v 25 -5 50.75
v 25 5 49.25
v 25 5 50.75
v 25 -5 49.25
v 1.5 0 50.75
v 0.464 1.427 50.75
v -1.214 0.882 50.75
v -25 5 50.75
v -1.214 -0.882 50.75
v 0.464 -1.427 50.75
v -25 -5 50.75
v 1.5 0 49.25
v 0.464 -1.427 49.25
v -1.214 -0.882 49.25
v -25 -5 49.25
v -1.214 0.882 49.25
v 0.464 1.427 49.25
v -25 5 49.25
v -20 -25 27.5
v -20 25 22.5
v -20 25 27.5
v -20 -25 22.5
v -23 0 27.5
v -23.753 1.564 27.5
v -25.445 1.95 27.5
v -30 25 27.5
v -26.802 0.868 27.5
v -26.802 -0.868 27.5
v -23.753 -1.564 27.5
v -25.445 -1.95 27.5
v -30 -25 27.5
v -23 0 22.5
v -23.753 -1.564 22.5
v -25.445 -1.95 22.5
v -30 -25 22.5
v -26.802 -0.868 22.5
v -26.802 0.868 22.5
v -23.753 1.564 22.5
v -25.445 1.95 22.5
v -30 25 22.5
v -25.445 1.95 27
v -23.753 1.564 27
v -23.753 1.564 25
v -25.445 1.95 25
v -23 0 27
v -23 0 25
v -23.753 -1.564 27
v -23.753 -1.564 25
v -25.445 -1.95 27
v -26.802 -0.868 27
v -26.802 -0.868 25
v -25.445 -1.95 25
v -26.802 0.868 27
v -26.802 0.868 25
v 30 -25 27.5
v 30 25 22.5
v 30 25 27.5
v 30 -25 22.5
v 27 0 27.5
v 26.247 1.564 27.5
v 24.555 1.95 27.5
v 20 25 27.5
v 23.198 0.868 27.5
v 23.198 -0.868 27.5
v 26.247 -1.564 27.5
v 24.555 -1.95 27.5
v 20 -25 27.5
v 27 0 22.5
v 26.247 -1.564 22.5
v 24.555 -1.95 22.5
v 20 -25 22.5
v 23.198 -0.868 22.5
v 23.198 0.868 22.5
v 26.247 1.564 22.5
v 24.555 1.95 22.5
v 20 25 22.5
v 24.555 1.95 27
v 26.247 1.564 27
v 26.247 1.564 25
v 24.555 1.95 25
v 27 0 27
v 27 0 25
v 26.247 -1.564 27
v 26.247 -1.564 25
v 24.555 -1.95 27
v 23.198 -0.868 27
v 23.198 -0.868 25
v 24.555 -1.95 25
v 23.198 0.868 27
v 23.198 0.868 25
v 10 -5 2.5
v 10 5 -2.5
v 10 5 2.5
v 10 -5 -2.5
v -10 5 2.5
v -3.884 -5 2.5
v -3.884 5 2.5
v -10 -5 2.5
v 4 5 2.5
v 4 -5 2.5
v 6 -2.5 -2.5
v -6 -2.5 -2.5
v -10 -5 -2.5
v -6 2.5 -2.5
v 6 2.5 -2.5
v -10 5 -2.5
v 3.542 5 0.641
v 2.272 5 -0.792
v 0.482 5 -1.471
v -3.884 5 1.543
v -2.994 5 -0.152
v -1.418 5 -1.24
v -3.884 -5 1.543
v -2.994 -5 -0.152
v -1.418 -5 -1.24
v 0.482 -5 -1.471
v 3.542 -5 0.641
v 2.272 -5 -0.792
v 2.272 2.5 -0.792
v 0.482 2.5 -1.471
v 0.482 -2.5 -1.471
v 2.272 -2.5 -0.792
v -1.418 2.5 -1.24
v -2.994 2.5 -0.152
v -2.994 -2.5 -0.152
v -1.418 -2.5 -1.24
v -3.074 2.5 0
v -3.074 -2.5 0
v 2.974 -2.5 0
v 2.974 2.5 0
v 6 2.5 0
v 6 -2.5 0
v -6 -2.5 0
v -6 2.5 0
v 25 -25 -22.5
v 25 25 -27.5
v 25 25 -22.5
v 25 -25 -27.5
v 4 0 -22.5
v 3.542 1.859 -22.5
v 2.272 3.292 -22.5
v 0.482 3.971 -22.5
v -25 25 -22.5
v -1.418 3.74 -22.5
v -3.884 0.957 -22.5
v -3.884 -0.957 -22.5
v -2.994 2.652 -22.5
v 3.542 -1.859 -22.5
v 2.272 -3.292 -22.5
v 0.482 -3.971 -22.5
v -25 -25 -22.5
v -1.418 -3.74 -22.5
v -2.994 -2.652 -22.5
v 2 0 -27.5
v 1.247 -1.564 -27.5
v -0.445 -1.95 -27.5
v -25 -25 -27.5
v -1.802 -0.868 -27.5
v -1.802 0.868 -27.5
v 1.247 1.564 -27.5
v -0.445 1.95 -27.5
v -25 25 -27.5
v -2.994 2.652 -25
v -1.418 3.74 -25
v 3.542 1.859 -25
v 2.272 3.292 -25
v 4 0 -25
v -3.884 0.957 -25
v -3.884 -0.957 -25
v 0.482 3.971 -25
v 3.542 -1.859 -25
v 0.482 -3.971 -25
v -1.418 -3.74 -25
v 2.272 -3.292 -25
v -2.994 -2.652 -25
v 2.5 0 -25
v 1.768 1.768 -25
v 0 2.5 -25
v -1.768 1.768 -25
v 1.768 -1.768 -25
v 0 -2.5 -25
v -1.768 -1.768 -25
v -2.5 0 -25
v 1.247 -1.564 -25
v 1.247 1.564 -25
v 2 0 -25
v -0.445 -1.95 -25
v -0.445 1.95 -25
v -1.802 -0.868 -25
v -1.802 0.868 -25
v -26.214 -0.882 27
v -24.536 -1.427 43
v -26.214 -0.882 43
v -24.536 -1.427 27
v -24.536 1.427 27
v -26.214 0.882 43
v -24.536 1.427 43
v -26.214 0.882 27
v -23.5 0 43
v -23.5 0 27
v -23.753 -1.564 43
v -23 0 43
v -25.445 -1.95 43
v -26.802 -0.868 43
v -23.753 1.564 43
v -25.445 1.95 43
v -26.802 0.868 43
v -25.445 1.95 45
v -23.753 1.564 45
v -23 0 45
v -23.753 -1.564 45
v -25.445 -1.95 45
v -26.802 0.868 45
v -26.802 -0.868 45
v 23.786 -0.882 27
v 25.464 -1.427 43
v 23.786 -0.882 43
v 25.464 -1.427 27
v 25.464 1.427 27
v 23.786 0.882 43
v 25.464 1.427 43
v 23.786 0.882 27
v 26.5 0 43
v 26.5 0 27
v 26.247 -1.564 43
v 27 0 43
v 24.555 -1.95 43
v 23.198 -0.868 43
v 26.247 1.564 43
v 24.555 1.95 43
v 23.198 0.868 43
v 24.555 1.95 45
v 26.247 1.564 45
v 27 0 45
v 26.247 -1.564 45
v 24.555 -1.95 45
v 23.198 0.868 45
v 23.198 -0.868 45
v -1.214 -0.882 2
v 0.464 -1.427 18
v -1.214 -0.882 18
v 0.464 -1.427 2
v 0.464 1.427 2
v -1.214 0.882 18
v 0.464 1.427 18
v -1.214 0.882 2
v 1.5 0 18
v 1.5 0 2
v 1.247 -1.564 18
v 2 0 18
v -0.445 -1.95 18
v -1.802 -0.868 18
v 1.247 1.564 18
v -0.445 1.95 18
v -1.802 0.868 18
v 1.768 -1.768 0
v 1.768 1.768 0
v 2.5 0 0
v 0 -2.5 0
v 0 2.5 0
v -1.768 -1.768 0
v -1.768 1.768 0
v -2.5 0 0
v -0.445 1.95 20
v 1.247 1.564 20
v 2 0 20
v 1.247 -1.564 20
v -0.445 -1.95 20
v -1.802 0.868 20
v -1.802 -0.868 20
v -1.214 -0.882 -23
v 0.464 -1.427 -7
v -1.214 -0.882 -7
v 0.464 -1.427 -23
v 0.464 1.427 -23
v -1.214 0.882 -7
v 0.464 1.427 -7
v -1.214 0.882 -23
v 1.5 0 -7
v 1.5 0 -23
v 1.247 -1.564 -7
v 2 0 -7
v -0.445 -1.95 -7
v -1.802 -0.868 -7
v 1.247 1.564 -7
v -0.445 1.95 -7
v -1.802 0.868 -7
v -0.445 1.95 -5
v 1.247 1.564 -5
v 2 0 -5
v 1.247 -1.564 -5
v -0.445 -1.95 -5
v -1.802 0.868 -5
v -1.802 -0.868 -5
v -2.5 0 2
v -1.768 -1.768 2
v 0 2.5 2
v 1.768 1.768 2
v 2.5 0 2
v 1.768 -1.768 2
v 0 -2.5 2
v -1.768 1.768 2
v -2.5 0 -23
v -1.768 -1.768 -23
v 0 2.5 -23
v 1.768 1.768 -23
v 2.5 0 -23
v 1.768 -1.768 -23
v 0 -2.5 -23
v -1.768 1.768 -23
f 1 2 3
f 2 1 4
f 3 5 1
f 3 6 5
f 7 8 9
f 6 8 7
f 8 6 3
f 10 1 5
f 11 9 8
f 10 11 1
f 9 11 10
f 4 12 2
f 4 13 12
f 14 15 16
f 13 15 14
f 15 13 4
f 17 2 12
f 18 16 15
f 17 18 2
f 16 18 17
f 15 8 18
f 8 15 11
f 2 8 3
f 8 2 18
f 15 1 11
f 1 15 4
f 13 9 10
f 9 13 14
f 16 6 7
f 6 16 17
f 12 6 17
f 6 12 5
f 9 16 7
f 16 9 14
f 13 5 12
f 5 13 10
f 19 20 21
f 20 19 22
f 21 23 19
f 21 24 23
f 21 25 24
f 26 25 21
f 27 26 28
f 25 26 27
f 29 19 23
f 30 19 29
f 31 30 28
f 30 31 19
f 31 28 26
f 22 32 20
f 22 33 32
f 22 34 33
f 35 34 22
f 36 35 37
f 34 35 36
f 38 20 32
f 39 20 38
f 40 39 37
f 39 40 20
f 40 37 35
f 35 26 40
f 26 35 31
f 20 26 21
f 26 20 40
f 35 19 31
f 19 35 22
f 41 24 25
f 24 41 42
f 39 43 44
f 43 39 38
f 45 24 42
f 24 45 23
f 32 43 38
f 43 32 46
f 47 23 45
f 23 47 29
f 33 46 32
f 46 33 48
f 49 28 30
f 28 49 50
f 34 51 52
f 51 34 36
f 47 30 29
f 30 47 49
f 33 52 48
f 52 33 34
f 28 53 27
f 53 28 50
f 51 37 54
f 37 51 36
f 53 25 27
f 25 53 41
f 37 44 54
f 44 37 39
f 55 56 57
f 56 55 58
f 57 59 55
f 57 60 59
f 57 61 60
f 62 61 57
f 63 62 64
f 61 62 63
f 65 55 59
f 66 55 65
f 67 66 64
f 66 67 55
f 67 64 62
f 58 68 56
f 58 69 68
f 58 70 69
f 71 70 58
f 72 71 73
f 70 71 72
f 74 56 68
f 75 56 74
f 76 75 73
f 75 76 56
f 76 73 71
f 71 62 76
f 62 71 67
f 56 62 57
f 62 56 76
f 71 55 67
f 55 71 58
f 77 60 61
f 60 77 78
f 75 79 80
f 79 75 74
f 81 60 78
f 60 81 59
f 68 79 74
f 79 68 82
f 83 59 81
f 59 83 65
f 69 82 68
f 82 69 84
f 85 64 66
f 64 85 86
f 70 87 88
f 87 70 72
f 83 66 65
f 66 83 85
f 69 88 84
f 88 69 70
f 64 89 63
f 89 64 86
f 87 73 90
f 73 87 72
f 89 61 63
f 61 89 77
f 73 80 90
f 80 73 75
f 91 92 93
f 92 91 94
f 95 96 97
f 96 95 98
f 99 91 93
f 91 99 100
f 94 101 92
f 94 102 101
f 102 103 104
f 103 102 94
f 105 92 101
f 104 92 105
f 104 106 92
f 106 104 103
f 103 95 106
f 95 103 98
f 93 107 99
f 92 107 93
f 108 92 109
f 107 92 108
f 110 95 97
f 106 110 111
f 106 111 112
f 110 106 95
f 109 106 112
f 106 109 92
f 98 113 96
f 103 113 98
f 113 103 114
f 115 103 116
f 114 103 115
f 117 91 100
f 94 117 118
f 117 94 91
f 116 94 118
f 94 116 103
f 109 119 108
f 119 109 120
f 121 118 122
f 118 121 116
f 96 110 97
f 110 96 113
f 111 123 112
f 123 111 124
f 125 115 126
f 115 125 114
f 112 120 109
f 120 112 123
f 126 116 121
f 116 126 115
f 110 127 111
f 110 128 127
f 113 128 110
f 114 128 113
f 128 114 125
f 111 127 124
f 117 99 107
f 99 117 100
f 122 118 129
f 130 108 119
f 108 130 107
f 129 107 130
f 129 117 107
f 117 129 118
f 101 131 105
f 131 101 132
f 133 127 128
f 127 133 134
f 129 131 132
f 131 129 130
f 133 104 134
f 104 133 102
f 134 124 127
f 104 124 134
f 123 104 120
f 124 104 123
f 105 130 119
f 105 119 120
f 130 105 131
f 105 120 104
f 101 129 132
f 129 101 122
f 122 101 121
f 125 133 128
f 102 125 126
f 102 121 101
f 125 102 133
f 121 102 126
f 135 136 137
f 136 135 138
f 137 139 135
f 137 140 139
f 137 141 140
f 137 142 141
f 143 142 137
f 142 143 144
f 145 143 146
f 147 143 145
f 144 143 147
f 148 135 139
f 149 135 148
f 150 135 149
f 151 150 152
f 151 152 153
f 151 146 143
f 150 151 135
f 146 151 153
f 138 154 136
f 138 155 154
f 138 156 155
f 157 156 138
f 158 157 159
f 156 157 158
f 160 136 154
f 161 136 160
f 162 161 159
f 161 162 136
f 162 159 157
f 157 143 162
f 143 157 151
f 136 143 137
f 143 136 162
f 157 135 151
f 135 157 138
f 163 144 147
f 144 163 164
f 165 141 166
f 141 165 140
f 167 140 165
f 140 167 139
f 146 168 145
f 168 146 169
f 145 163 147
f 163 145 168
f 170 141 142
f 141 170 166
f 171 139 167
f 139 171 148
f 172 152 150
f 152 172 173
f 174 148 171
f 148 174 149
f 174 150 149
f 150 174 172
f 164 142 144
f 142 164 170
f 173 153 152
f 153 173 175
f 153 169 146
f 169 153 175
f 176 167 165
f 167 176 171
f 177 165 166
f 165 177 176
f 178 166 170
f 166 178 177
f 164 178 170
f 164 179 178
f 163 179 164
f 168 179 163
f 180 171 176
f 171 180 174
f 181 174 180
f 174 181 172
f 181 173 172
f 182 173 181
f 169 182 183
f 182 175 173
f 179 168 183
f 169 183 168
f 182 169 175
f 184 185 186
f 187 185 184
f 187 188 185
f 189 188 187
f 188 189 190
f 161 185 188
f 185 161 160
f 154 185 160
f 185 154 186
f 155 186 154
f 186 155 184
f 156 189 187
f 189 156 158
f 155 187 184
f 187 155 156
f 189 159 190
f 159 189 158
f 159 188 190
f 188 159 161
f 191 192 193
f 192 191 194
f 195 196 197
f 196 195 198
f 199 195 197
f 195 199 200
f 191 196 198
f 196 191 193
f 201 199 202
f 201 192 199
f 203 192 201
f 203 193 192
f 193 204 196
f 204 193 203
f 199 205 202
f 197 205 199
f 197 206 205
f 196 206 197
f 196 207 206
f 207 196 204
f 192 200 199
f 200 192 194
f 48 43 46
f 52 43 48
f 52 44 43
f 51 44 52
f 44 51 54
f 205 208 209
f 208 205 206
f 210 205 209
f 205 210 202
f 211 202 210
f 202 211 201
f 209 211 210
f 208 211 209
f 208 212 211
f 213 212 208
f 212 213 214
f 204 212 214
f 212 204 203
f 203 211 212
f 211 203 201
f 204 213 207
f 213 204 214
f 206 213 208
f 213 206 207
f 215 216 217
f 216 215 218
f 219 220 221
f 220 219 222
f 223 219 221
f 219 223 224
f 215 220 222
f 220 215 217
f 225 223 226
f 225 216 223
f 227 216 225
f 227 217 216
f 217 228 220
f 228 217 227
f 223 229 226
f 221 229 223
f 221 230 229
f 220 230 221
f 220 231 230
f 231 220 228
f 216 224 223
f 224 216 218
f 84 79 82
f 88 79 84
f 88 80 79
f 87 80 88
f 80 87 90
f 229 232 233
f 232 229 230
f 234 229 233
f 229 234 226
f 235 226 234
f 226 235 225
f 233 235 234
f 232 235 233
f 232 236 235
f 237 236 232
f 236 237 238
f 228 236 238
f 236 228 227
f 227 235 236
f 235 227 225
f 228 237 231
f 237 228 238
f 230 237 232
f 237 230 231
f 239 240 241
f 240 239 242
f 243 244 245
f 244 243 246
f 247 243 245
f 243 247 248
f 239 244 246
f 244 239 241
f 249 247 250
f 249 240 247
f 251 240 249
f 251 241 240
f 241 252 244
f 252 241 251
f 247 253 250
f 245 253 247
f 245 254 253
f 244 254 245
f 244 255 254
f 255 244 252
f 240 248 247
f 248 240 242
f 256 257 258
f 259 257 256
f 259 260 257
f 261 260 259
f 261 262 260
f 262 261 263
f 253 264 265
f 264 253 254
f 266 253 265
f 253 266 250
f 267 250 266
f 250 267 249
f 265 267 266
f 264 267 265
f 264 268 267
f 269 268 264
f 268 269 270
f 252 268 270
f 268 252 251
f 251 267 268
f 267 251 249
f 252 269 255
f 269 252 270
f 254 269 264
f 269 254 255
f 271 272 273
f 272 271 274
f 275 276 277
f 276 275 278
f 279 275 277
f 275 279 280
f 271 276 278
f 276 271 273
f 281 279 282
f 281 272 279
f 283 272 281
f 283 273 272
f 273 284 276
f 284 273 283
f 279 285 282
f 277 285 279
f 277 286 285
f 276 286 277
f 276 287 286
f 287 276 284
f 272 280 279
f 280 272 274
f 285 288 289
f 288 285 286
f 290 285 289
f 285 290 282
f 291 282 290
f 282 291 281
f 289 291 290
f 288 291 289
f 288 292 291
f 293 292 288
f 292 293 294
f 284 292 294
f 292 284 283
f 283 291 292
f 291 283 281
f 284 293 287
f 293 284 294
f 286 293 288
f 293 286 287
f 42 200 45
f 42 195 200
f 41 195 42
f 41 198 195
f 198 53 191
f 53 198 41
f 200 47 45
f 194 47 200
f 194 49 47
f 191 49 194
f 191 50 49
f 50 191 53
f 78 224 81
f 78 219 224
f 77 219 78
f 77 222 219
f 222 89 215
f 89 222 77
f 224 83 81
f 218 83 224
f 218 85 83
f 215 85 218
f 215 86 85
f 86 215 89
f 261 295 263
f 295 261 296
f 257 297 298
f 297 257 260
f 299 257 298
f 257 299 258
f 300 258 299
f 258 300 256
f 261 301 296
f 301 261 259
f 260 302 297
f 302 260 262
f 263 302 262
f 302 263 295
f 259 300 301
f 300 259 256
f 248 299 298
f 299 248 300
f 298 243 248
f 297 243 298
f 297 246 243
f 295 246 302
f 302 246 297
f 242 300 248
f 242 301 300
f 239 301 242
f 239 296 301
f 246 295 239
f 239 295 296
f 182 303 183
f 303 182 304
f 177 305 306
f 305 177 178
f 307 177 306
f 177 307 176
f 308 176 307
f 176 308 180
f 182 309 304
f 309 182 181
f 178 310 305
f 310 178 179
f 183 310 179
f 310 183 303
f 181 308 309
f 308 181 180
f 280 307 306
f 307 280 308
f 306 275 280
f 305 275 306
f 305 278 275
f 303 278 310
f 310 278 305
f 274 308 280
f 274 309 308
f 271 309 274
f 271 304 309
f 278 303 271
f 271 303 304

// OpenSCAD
// Base Plate
module base_plate() {
    difference() {
        cube([50, 50, 5], center = true); // Main rectangular plate
        translate([0, 0, 2.5]) cylinder(r = 4, h = 5, center = true); // Reduced protrusion size
        translate([0, 0, -2.5]) cylinder(r = 2, h = 10, center = true); // Repositioned hole to align with the center
    }
}

// Side Plate
module side_plate() {
    difference() {
        cube([10, 50, 5], center = true); // Main rectangular plate
        translate([0, 0, -2.5]) cylinder(r = 2, h = 10, center = true); // Hole repositioned closer to the center
    }
}

// Connector Plate
module connector_plate() {
    difference() {
        cube([50, 10, 1.5], center = true); // Reduced thickness of the rectangular plate
        translate([0, 0, -0.75]) cylinder(r = 1.5, h = 3, center = true); // Adjusted hole size
    }
}

// Support Bracket
module support_bracket() {
    difference() {
        cube([20, 10, 5], center = true); // Main bracket
        translate([0, 0, 2.5]) rotate([90, 0, 0]) cylinder(r = 4, h = 10, center = true); // Reduced curve on the edge
        translate([0, 0, -2.5]) cube([12, 5, 5], center = true); // Enlarged rectangular cutout
    }
}

// Fastener Bolt
module fastener_bolt() {
    union() {
        cylinder(r = 1.5, h = 18, center = false); // Reduced bolt shaft length
        translate([0, 0, 18]) cylinder(r = 2, h = 2, center = false); // Bolt head
    }
}

// Fastener Nut
module fastener_nut() {
    difference() {
        cylinder(r = 2.5, h = 2, center = false); // Reduced hexagonal nut size
        translate([0, 0, 1]) cylinder(r = 1.5, h = 4, center = true); // Threading inside
    }
}

// Assembly
module assembly() {
    // Layer 1: Connector Plate
    translate([0, 0, 50]) connector_plate();

    // Layer 2: Side Plates
    translate([-25, 0, 25]) side_plate();
    translate([25, 0, 25]) side_plate();

    // Layer 3: Support Bracket
    translate([0, 0, 0]) support_bracket();

    // Layer 4: Base Plate
    translate([0, 0, -25]) base_plate();

    // Fasteners
    translate([-25, 0, 25]) fastener_bolt();
    translate([25, 0, 25]) fastener_bolt();
    translate([0, 0, 0]) fastener_bolt();
    translate([0, 0, -25]) fastener_bolt();

    translate([-25, 0, 25]) fastener_nut();
    translate([25, 0, 25]) fastener_nut();
    translate([0, 0, 0]) fastener_nut();
    translate([0, 0, -25]) fastener_nut();
}

// Render the assembly
assembly();
